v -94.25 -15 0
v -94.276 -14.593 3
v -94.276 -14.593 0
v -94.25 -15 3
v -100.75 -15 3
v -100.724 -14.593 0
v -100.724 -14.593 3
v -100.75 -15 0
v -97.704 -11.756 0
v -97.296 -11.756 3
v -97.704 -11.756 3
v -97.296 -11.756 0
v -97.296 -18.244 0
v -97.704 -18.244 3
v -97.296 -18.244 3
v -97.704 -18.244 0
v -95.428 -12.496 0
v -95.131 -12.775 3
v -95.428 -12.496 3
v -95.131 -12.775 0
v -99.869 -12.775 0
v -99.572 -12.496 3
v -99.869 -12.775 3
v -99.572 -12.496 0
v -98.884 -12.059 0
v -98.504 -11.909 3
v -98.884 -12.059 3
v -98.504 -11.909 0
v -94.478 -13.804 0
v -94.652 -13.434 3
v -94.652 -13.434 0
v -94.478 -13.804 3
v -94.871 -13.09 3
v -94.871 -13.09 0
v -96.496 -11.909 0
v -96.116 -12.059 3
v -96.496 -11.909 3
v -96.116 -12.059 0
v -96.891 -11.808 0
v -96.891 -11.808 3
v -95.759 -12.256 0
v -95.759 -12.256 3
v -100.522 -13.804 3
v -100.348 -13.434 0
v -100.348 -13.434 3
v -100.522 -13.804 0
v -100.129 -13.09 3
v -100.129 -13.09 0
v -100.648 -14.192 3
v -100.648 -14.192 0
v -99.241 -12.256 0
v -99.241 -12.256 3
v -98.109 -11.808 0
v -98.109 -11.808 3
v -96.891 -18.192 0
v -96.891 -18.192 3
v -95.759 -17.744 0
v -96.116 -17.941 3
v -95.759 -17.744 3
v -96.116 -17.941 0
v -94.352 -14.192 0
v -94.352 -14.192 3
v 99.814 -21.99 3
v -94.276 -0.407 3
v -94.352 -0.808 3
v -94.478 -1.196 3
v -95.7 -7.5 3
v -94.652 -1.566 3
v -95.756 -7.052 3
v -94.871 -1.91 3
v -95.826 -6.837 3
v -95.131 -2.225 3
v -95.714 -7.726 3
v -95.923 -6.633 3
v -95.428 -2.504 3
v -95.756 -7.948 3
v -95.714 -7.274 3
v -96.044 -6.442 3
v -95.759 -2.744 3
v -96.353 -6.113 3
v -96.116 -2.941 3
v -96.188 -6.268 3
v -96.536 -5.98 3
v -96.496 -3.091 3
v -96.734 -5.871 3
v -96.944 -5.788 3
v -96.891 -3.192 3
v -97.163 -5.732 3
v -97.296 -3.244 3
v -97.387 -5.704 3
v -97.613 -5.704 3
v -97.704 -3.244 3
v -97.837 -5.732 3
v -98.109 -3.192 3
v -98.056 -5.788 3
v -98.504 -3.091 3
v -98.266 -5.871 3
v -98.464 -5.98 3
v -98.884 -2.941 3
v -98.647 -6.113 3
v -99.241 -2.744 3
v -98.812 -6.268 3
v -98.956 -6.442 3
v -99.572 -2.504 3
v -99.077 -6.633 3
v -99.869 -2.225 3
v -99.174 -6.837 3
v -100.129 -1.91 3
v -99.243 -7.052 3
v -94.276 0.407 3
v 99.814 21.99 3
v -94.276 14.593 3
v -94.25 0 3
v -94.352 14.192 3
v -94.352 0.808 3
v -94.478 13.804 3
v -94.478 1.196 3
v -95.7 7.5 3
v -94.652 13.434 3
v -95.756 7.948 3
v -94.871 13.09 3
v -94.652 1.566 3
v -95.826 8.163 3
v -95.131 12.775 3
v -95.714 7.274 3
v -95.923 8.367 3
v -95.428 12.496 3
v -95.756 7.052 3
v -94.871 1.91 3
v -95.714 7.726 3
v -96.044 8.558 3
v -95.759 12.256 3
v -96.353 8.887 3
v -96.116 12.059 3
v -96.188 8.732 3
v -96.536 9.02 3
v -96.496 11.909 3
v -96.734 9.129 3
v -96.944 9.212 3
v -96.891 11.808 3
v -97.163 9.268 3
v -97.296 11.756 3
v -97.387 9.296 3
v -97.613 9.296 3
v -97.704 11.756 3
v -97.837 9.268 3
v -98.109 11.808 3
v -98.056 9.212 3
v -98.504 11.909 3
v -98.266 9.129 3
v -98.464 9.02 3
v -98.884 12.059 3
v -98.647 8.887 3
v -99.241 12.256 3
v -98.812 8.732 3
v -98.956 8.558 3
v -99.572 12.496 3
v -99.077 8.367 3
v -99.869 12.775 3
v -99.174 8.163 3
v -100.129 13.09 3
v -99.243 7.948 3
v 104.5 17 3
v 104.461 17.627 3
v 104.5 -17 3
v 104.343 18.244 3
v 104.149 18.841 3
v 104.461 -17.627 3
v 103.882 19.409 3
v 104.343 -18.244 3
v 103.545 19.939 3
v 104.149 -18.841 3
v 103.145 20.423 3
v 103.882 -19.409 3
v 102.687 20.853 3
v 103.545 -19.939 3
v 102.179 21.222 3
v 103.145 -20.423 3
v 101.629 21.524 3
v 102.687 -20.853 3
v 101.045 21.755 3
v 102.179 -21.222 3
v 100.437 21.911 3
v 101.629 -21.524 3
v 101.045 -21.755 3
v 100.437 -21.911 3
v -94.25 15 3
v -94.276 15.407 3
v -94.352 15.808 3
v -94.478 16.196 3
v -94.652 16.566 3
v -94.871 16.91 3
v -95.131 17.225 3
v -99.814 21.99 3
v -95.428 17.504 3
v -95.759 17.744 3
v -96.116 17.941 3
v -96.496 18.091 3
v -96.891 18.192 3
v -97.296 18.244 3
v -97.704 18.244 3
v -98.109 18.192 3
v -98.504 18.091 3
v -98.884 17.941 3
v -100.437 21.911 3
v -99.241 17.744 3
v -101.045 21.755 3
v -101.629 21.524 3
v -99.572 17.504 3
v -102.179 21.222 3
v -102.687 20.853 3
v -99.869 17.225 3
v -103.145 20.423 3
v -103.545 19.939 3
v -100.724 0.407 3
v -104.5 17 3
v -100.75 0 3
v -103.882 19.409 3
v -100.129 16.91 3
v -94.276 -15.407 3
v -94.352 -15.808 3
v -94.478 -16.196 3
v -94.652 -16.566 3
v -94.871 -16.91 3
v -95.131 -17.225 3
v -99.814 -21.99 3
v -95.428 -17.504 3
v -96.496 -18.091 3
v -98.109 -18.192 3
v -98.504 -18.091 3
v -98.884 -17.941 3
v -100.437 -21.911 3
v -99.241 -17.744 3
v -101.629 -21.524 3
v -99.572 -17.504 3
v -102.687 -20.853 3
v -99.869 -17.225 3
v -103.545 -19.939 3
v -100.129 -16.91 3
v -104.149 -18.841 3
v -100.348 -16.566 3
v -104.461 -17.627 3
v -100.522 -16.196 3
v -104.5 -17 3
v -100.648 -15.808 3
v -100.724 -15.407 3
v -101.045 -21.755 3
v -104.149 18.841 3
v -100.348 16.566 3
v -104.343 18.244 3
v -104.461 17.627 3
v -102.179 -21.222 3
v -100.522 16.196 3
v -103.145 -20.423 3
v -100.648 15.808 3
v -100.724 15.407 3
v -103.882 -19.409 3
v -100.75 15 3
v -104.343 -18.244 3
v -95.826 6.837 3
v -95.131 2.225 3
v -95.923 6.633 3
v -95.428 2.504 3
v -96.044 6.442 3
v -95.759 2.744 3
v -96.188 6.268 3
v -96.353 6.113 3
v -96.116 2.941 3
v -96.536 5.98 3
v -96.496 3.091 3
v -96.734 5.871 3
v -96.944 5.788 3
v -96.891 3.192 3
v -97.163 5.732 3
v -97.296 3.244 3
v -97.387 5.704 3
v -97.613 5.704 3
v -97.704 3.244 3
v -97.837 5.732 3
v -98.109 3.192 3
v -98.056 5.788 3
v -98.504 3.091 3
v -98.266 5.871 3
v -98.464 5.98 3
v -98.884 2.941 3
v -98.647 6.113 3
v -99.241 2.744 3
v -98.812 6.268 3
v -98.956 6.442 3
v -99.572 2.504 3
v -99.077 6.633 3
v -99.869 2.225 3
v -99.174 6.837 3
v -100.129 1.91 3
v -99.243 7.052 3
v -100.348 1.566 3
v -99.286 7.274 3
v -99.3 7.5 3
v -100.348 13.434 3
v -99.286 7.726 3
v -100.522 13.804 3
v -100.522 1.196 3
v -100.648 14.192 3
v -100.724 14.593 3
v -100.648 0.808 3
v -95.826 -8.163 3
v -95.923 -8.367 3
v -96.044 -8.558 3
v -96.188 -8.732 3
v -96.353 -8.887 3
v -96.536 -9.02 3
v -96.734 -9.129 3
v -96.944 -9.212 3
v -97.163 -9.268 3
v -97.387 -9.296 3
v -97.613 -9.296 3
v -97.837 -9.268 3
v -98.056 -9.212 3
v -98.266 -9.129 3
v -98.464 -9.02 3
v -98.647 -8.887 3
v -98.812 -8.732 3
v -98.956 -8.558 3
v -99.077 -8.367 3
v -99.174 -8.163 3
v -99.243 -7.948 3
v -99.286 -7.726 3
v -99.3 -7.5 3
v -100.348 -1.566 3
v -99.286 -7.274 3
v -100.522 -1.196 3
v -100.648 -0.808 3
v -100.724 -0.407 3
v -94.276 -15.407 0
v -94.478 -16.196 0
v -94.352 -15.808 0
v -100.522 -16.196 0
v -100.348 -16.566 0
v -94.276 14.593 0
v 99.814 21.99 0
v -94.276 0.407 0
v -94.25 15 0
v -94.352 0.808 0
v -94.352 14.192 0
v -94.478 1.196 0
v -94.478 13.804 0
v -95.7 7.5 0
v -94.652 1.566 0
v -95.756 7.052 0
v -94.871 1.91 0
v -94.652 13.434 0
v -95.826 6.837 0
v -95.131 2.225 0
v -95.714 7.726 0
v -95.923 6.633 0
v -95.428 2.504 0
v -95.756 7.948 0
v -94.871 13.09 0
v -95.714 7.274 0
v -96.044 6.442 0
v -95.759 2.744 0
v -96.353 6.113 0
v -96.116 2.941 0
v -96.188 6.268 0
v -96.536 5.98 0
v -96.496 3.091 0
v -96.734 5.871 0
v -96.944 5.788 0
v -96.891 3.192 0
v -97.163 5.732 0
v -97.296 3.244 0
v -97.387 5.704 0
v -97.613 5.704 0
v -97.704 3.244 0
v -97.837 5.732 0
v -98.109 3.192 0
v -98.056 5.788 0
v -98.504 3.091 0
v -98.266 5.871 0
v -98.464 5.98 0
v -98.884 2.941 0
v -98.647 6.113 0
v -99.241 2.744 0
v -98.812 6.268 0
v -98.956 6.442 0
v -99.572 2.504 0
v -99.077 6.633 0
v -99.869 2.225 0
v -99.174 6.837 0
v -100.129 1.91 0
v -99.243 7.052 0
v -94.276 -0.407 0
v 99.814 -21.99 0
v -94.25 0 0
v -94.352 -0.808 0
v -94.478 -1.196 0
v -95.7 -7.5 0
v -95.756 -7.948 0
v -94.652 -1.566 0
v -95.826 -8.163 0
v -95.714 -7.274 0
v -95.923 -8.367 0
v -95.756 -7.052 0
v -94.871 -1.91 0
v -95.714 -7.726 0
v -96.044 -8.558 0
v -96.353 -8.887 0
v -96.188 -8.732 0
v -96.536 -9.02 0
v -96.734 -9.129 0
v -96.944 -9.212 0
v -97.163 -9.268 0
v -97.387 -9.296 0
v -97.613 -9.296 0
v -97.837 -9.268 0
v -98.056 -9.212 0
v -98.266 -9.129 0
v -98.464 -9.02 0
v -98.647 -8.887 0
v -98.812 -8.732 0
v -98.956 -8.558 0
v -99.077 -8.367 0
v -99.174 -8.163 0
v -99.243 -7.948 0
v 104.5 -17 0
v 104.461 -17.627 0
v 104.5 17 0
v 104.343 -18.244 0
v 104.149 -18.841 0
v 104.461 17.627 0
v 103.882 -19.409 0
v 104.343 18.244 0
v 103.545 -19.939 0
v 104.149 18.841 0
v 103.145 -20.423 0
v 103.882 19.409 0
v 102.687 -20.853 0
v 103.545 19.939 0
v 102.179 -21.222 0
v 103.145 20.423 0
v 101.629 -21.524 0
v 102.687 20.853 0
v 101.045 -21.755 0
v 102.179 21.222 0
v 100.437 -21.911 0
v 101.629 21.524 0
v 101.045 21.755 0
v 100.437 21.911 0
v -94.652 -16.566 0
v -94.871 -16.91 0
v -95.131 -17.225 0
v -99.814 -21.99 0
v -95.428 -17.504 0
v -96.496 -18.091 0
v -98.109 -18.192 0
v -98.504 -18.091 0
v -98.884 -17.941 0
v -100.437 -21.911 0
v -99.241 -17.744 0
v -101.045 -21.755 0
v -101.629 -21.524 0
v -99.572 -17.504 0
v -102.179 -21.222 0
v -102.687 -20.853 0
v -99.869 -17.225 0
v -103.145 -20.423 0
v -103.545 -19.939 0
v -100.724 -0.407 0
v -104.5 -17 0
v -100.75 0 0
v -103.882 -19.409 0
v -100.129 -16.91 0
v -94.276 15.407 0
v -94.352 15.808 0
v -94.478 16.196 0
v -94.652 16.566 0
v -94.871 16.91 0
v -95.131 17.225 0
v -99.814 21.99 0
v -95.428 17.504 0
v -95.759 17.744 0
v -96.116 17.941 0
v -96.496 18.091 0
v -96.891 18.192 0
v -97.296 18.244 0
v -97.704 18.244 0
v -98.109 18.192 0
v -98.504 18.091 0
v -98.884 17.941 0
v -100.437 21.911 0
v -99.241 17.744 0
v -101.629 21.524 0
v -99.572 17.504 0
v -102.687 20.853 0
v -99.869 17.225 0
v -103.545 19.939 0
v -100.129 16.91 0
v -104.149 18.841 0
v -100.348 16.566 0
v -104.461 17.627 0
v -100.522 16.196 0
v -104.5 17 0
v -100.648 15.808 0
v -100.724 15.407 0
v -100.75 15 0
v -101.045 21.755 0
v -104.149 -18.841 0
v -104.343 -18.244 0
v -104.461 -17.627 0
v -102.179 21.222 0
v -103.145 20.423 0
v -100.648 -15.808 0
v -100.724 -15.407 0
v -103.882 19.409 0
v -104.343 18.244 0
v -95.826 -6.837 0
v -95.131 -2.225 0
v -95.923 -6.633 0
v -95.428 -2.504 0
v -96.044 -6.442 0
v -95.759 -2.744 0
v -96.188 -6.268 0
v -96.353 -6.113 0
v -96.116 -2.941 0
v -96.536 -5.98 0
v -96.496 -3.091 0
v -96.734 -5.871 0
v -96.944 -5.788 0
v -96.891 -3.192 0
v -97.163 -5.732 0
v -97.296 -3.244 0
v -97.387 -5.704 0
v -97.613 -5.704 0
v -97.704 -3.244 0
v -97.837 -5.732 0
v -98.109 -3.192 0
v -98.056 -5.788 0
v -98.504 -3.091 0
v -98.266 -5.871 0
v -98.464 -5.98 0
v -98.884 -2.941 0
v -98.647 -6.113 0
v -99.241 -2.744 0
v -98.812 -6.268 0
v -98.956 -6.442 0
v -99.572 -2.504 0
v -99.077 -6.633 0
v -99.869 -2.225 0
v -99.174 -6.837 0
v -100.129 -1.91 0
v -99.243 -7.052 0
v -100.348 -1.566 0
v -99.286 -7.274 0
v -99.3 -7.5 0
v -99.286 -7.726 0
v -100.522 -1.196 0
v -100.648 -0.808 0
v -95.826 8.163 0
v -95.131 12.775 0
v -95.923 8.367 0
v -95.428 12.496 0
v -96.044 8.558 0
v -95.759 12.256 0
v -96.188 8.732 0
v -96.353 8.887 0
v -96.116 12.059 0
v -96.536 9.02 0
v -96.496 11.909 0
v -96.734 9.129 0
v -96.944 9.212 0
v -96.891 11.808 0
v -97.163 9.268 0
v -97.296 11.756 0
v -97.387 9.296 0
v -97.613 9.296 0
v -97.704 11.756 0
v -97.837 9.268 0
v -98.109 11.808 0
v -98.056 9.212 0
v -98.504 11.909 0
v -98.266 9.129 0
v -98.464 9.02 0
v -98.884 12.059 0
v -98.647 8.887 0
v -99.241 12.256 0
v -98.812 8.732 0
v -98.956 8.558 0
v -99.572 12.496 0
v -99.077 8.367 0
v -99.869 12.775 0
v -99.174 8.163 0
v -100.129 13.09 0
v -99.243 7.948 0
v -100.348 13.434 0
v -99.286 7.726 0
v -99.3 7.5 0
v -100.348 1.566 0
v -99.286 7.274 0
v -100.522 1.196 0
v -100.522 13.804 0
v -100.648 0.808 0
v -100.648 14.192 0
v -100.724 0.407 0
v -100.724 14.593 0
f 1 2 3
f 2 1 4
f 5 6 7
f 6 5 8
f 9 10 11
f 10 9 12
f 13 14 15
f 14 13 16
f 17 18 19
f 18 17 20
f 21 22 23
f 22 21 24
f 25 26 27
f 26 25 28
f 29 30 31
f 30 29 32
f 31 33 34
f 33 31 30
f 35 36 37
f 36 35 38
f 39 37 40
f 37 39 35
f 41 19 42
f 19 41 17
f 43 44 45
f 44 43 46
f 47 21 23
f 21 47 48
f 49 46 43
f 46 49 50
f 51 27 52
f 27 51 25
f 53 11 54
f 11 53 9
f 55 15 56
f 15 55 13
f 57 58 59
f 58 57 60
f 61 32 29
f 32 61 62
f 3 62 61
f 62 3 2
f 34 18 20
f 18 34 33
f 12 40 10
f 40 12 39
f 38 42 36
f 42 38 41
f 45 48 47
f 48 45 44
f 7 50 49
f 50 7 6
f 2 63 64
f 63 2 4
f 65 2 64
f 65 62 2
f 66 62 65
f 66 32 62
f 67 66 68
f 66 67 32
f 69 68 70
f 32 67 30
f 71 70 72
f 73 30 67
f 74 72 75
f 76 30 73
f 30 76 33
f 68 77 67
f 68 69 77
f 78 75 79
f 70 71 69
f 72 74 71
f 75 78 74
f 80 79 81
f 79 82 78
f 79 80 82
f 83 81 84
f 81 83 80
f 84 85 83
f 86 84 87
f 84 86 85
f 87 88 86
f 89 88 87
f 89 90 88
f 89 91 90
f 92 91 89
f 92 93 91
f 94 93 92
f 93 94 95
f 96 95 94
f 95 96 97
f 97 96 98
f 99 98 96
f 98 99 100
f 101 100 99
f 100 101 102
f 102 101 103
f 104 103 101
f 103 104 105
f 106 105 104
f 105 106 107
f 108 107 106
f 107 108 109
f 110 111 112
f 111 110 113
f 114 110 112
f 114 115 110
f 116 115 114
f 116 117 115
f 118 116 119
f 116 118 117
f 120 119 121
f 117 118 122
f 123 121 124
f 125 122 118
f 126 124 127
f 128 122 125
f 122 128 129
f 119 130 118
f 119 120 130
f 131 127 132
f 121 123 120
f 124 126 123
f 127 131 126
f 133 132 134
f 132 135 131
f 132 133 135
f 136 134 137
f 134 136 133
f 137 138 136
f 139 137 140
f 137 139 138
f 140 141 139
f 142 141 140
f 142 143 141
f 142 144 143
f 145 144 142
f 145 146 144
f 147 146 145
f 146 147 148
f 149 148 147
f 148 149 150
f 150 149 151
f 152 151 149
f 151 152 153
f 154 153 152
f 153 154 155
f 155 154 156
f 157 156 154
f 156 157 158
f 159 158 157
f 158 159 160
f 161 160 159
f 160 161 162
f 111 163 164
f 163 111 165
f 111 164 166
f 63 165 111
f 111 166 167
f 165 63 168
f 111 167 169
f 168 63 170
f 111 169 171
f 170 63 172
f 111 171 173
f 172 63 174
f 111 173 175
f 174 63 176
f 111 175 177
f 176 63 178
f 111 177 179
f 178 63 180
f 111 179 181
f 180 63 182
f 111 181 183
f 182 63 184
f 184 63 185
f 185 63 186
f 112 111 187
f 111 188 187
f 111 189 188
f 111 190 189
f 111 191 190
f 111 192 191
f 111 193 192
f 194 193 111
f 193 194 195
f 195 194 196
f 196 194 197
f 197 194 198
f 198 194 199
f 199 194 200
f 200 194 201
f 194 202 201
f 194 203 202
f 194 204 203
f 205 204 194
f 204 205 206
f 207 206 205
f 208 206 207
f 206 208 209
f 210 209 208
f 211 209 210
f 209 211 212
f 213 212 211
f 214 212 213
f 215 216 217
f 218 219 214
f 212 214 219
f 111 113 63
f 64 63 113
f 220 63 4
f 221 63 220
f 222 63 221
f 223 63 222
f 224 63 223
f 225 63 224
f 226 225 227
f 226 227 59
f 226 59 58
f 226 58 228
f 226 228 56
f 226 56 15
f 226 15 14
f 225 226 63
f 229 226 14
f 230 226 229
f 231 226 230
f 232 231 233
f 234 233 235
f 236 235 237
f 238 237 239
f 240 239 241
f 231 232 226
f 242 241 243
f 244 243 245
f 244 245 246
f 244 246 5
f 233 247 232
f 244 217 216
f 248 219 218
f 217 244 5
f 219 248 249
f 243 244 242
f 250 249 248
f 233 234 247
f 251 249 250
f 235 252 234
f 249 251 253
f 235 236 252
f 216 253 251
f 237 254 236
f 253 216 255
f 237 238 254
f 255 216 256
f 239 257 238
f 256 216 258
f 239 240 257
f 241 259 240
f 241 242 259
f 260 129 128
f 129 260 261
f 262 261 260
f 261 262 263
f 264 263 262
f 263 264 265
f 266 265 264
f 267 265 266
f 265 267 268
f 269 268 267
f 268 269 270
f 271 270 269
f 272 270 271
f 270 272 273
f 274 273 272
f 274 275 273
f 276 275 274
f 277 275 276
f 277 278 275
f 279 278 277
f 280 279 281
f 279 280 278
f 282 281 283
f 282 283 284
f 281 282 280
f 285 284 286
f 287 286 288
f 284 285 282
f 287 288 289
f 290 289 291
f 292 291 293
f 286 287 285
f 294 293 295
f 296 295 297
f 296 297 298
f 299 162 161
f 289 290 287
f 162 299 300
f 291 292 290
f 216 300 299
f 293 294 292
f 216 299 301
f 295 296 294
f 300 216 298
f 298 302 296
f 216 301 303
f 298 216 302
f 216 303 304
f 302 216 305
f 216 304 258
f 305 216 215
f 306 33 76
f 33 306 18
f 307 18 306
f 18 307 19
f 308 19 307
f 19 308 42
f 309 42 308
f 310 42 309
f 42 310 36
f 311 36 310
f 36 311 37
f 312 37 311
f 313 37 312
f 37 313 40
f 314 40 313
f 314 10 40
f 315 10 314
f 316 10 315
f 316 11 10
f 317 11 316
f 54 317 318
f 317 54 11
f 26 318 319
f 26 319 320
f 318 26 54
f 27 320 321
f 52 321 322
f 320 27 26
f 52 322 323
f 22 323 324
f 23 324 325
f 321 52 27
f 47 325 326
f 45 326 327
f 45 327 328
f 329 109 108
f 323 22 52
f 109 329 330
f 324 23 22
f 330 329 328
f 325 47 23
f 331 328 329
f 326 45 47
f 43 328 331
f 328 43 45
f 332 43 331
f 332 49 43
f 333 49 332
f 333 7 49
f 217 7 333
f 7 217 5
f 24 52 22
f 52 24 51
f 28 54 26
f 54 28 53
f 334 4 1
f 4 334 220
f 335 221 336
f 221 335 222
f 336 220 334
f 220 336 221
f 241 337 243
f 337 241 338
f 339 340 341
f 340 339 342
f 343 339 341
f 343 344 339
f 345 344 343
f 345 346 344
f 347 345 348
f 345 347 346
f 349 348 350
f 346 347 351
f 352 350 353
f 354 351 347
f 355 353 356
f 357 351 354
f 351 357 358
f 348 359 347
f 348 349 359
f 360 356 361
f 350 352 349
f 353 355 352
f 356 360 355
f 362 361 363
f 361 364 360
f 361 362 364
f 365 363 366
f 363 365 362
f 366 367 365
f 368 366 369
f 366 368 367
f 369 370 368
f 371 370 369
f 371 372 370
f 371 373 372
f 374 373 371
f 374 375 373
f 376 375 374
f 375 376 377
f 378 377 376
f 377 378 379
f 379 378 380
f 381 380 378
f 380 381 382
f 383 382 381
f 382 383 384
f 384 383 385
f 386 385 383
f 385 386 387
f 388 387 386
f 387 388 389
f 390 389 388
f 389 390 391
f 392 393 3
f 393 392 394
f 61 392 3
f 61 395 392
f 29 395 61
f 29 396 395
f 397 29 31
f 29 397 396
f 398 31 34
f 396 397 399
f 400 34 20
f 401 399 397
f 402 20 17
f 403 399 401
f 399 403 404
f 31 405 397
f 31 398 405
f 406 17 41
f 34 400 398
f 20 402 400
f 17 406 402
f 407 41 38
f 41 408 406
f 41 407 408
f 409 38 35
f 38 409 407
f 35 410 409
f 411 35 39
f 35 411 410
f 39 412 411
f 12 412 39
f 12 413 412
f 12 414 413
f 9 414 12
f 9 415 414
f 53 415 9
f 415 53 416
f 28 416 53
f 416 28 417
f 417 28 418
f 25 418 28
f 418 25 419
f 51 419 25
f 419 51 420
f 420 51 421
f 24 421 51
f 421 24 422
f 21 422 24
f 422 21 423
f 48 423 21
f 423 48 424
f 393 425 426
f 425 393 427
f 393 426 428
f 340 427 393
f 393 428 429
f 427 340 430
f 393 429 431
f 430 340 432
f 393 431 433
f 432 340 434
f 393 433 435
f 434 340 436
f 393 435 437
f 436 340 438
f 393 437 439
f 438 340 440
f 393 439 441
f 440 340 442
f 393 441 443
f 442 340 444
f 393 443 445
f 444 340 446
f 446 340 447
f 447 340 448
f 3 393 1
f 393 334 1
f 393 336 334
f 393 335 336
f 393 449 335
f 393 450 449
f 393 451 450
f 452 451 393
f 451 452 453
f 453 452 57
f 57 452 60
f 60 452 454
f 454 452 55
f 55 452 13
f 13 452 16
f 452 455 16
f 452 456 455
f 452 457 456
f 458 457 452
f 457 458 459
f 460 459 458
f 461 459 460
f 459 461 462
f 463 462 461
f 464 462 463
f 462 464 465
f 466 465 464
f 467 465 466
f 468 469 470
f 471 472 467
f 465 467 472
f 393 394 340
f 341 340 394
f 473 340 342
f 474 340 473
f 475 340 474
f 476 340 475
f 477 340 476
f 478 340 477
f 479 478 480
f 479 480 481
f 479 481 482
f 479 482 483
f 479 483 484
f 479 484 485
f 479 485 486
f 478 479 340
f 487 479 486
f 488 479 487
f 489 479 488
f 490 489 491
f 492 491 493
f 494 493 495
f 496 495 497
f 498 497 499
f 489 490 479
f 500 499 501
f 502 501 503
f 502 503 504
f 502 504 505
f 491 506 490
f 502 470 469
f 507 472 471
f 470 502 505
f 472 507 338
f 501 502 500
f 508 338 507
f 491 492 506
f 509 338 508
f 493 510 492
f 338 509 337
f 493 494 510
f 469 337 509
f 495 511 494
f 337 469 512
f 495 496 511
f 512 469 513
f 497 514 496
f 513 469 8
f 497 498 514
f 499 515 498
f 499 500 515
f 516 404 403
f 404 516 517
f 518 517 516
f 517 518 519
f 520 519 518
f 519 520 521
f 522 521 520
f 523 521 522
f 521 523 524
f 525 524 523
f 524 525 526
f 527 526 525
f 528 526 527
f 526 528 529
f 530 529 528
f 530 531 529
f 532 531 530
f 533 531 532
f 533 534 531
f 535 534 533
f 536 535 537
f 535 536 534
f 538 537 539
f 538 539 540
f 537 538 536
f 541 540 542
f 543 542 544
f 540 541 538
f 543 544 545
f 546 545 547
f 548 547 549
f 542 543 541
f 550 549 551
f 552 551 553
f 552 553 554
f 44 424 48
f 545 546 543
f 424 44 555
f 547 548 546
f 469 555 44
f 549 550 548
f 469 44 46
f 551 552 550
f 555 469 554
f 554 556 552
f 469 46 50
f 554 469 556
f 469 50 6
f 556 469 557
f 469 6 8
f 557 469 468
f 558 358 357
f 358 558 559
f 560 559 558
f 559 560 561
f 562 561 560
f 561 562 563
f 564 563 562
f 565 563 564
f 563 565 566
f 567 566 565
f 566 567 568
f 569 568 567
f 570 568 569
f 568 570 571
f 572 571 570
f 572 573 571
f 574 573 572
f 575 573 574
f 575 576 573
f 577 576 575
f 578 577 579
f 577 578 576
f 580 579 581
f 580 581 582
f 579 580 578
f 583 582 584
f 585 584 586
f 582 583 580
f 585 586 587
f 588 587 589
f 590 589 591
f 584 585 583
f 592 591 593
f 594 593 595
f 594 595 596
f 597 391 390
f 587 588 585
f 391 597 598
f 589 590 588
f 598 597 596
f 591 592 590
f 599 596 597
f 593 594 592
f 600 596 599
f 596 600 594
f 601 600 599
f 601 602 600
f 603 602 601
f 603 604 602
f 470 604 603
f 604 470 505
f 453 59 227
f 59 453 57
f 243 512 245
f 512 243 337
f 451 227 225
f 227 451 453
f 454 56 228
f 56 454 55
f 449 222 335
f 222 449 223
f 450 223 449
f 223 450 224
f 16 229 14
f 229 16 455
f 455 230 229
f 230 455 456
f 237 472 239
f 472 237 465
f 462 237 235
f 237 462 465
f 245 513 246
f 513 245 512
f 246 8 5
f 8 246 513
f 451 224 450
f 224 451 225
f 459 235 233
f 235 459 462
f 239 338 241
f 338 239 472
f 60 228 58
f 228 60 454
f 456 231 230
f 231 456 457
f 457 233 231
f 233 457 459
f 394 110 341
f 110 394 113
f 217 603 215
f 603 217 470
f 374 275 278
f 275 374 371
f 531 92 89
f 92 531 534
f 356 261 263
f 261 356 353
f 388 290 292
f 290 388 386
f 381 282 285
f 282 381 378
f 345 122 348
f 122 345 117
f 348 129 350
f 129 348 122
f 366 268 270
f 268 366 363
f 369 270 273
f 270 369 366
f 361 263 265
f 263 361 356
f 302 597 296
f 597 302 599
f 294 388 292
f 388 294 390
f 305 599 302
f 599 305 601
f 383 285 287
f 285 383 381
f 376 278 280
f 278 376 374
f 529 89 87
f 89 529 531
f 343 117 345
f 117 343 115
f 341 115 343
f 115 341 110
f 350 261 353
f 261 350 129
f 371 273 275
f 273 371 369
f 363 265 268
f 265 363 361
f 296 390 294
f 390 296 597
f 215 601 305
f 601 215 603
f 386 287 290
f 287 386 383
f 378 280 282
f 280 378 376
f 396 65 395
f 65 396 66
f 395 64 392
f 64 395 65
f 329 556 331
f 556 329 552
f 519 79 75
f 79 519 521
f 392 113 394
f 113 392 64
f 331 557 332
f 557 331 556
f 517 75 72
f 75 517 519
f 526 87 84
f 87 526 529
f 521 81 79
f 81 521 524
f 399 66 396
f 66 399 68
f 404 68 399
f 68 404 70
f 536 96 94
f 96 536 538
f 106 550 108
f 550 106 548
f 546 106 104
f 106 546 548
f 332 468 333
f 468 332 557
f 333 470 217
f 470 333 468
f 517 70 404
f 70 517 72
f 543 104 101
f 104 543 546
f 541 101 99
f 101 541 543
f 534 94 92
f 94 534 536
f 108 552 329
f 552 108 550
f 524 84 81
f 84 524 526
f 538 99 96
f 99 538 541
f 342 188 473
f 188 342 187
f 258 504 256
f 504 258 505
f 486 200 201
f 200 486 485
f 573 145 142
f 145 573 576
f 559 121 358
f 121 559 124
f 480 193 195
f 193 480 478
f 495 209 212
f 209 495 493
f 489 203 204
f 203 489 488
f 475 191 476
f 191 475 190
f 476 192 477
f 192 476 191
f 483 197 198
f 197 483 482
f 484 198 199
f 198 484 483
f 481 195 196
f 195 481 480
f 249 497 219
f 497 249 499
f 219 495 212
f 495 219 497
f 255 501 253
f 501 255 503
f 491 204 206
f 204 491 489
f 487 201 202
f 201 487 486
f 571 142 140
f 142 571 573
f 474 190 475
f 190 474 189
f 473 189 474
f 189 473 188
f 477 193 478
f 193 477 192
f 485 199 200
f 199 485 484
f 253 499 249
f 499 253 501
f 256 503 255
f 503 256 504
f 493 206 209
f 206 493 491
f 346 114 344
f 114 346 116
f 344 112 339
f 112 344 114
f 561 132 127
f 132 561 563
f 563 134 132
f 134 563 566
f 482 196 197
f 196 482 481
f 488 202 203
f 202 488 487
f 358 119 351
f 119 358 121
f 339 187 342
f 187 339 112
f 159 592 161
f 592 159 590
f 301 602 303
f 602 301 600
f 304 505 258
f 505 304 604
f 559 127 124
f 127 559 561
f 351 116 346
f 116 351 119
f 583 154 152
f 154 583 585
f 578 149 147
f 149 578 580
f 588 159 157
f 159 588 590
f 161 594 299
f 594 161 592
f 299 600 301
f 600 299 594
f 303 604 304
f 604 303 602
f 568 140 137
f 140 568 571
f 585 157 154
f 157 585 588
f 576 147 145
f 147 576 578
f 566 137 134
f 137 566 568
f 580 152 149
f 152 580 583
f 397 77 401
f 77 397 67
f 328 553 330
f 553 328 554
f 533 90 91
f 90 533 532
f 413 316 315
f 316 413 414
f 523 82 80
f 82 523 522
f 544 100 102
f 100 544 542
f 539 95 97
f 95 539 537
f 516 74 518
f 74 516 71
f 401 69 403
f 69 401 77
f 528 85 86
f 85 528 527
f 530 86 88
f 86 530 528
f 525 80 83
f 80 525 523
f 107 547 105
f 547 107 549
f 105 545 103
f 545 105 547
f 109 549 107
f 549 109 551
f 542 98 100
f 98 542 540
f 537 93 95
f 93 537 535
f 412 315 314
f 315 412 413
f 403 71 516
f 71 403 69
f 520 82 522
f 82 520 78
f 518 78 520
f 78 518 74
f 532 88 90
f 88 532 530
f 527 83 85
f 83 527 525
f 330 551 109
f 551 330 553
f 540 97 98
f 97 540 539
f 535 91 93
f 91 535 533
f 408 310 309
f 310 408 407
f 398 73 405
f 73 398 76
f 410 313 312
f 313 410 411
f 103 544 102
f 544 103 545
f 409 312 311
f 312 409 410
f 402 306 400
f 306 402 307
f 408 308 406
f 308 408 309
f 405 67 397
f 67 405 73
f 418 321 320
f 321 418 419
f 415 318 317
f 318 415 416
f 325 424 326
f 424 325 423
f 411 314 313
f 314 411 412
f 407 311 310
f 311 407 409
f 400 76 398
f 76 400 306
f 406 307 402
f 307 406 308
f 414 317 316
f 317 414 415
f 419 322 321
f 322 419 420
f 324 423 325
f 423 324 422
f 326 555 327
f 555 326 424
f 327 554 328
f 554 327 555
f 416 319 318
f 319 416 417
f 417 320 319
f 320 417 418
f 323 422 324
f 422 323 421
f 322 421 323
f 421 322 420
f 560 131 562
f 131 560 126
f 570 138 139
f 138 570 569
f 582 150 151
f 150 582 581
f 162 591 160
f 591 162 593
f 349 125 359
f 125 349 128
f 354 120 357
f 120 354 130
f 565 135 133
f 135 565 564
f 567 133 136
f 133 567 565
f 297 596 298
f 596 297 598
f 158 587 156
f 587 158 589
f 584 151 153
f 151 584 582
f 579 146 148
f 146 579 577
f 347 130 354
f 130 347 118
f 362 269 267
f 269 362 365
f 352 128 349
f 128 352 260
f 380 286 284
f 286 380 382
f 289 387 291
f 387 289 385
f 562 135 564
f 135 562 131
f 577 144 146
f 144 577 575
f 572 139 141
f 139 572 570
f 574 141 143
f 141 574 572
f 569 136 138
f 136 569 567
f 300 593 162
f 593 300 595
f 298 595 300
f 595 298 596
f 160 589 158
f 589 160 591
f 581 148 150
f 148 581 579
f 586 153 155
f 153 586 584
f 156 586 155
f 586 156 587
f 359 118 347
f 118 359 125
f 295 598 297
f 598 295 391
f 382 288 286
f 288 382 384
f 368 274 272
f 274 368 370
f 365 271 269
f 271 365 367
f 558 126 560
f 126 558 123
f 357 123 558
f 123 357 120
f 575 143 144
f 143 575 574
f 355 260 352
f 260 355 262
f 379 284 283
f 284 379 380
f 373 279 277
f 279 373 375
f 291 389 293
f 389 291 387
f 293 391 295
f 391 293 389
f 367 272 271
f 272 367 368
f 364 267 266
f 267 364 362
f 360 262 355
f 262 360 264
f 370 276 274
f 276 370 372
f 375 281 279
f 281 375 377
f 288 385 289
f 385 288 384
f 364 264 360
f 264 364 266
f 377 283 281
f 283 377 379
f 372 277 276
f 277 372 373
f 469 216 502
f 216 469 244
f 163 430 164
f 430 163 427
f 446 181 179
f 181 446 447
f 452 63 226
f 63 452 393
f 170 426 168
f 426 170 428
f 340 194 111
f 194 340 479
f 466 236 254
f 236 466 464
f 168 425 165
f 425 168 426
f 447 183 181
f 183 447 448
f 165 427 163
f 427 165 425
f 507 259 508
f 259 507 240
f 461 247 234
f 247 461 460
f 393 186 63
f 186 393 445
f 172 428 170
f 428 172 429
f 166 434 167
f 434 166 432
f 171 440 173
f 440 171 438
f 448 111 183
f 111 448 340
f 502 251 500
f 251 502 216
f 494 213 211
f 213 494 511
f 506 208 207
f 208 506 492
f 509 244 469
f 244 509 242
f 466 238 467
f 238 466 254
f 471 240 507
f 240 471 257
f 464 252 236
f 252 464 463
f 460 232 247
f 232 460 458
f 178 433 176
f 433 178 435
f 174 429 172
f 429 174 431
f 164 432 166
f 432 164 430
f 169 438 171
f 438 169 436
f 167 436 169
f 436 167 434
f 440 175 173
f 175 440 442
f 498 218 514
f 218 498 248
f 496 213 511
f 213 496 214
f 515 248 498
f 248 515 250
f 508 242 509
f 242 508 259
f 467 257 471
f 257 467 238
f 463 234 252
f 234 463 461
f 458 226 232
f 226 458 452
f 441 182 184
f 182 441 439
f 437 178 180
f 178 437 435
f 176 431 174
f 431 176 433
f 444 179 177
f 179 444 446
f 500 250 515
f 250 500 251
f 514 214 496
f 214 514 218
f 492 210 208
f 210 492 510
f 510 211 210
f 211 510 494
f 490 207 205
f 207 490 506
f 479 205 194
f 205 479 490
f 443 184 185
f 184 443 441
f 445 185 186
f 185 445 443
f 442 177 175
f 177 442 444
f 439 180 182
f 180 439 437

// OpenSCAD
$fn = 50;


difference() {
	union() {
		hull() {
			translate(v = [-99.5000000000, 17.0000000000, 0]) {
				cylinder(h = 3, r = 5);
			}
			translate(v = [99.5000000000, 17.0000000000, 0]) {
				cylinder(h = 3, r = 5);
			}
			translate(v = [-99.5000000000, -17.0000000000, 0]) {
				cylinder(h = 3, r = 5);
			}
			translate(v = [99.5000000000, -17.0000000000, 0]) {
				cylinder(h = 3, r = 5);
			}
		}
	}
	union() {
		translate(v = [-97.5000000000, -15.0000000000, 0]) {
			cylinder(h = 3, r = 3.2500000000);
		}
		translate(v = [-97.5000000000, 0.0000000000, 0]) {
			cylinder(h = 3, r = 3.2500000000);
		}
		translate(v = [-97.5000000000, 15.0000000000, 0]) {
			cylinder(h = 3, r = 3.2500000000);
		}
		translate(v = [-97.5000000000, -15.0000000000, 0]) {
			cylinder(h = 3, r = 1.8000000000);
		}
		translate(v = [-97.5000000000, -7.5000000000, 0]) {
			cylinder(h = 3, r = 1.8000000000);
		}
		translate(v = [-97.5000000000, 0.0000000000, 0]) {
			cylinder(h = 3, r = 1.8000000000);
		}
		translate(v = [-97.5000000000, 7.5000000000, 0]) {
			cylinder(h = 3, r = 1.8000000000);
		}
		translate(v = [-97.5000000000, 15.0000000000, 0]) {
			cylinder(h = 3, r = 1.8000000000);
		}
		translate(v = [-97.5000000000, -15.0000000000, 0]) {
			cylinder(h = 3, r = 1.8000000000);
		}
		translate(v = [-97.5000000000, -7.5000000000, 0]) {
			cylinder(h = 3, r = 1.8000000000);
		}
		translate(v = [-97.5000000000, 0.0000000000, 0]) {
			cylinder(h = 3, r = 1.8000000000);
		}
		translate(v = [-97.5000000000, 7.5000000000, 0]) {
			cylinder(h = 3, r = 1.8000000000);
		}
		translate(v = [-97.5000000000, 15.0000000000, 0]) {
			cylinder(h = 3, r = 1.8000000000);
		}
		translate(v = [-97.5000000000, -15.0000000000, 0]) {
			cylinder(h = 3, r = 1.8000000000);
		}
		translate(v = [-97.5000000000, -7.5000000000, 0]) {
			cylinder(h = 3, r = 1.8000000000);
		}
		translate(v = [-97.5000000000, 0.0000000000, 0]) {
			cylinder(h = 3, r = 1.8000000000);
		}
		translate(v = [-97.5000000000, 7.5000000000, 0]) {
			cylinder(h = 3, r = 1.8000000000);
		}
		translate(v = [-97.5000000000, 15.0000000000, 0]) {
			cylinder(h = 3, r = 1.8000000000);
		}
	}
}
